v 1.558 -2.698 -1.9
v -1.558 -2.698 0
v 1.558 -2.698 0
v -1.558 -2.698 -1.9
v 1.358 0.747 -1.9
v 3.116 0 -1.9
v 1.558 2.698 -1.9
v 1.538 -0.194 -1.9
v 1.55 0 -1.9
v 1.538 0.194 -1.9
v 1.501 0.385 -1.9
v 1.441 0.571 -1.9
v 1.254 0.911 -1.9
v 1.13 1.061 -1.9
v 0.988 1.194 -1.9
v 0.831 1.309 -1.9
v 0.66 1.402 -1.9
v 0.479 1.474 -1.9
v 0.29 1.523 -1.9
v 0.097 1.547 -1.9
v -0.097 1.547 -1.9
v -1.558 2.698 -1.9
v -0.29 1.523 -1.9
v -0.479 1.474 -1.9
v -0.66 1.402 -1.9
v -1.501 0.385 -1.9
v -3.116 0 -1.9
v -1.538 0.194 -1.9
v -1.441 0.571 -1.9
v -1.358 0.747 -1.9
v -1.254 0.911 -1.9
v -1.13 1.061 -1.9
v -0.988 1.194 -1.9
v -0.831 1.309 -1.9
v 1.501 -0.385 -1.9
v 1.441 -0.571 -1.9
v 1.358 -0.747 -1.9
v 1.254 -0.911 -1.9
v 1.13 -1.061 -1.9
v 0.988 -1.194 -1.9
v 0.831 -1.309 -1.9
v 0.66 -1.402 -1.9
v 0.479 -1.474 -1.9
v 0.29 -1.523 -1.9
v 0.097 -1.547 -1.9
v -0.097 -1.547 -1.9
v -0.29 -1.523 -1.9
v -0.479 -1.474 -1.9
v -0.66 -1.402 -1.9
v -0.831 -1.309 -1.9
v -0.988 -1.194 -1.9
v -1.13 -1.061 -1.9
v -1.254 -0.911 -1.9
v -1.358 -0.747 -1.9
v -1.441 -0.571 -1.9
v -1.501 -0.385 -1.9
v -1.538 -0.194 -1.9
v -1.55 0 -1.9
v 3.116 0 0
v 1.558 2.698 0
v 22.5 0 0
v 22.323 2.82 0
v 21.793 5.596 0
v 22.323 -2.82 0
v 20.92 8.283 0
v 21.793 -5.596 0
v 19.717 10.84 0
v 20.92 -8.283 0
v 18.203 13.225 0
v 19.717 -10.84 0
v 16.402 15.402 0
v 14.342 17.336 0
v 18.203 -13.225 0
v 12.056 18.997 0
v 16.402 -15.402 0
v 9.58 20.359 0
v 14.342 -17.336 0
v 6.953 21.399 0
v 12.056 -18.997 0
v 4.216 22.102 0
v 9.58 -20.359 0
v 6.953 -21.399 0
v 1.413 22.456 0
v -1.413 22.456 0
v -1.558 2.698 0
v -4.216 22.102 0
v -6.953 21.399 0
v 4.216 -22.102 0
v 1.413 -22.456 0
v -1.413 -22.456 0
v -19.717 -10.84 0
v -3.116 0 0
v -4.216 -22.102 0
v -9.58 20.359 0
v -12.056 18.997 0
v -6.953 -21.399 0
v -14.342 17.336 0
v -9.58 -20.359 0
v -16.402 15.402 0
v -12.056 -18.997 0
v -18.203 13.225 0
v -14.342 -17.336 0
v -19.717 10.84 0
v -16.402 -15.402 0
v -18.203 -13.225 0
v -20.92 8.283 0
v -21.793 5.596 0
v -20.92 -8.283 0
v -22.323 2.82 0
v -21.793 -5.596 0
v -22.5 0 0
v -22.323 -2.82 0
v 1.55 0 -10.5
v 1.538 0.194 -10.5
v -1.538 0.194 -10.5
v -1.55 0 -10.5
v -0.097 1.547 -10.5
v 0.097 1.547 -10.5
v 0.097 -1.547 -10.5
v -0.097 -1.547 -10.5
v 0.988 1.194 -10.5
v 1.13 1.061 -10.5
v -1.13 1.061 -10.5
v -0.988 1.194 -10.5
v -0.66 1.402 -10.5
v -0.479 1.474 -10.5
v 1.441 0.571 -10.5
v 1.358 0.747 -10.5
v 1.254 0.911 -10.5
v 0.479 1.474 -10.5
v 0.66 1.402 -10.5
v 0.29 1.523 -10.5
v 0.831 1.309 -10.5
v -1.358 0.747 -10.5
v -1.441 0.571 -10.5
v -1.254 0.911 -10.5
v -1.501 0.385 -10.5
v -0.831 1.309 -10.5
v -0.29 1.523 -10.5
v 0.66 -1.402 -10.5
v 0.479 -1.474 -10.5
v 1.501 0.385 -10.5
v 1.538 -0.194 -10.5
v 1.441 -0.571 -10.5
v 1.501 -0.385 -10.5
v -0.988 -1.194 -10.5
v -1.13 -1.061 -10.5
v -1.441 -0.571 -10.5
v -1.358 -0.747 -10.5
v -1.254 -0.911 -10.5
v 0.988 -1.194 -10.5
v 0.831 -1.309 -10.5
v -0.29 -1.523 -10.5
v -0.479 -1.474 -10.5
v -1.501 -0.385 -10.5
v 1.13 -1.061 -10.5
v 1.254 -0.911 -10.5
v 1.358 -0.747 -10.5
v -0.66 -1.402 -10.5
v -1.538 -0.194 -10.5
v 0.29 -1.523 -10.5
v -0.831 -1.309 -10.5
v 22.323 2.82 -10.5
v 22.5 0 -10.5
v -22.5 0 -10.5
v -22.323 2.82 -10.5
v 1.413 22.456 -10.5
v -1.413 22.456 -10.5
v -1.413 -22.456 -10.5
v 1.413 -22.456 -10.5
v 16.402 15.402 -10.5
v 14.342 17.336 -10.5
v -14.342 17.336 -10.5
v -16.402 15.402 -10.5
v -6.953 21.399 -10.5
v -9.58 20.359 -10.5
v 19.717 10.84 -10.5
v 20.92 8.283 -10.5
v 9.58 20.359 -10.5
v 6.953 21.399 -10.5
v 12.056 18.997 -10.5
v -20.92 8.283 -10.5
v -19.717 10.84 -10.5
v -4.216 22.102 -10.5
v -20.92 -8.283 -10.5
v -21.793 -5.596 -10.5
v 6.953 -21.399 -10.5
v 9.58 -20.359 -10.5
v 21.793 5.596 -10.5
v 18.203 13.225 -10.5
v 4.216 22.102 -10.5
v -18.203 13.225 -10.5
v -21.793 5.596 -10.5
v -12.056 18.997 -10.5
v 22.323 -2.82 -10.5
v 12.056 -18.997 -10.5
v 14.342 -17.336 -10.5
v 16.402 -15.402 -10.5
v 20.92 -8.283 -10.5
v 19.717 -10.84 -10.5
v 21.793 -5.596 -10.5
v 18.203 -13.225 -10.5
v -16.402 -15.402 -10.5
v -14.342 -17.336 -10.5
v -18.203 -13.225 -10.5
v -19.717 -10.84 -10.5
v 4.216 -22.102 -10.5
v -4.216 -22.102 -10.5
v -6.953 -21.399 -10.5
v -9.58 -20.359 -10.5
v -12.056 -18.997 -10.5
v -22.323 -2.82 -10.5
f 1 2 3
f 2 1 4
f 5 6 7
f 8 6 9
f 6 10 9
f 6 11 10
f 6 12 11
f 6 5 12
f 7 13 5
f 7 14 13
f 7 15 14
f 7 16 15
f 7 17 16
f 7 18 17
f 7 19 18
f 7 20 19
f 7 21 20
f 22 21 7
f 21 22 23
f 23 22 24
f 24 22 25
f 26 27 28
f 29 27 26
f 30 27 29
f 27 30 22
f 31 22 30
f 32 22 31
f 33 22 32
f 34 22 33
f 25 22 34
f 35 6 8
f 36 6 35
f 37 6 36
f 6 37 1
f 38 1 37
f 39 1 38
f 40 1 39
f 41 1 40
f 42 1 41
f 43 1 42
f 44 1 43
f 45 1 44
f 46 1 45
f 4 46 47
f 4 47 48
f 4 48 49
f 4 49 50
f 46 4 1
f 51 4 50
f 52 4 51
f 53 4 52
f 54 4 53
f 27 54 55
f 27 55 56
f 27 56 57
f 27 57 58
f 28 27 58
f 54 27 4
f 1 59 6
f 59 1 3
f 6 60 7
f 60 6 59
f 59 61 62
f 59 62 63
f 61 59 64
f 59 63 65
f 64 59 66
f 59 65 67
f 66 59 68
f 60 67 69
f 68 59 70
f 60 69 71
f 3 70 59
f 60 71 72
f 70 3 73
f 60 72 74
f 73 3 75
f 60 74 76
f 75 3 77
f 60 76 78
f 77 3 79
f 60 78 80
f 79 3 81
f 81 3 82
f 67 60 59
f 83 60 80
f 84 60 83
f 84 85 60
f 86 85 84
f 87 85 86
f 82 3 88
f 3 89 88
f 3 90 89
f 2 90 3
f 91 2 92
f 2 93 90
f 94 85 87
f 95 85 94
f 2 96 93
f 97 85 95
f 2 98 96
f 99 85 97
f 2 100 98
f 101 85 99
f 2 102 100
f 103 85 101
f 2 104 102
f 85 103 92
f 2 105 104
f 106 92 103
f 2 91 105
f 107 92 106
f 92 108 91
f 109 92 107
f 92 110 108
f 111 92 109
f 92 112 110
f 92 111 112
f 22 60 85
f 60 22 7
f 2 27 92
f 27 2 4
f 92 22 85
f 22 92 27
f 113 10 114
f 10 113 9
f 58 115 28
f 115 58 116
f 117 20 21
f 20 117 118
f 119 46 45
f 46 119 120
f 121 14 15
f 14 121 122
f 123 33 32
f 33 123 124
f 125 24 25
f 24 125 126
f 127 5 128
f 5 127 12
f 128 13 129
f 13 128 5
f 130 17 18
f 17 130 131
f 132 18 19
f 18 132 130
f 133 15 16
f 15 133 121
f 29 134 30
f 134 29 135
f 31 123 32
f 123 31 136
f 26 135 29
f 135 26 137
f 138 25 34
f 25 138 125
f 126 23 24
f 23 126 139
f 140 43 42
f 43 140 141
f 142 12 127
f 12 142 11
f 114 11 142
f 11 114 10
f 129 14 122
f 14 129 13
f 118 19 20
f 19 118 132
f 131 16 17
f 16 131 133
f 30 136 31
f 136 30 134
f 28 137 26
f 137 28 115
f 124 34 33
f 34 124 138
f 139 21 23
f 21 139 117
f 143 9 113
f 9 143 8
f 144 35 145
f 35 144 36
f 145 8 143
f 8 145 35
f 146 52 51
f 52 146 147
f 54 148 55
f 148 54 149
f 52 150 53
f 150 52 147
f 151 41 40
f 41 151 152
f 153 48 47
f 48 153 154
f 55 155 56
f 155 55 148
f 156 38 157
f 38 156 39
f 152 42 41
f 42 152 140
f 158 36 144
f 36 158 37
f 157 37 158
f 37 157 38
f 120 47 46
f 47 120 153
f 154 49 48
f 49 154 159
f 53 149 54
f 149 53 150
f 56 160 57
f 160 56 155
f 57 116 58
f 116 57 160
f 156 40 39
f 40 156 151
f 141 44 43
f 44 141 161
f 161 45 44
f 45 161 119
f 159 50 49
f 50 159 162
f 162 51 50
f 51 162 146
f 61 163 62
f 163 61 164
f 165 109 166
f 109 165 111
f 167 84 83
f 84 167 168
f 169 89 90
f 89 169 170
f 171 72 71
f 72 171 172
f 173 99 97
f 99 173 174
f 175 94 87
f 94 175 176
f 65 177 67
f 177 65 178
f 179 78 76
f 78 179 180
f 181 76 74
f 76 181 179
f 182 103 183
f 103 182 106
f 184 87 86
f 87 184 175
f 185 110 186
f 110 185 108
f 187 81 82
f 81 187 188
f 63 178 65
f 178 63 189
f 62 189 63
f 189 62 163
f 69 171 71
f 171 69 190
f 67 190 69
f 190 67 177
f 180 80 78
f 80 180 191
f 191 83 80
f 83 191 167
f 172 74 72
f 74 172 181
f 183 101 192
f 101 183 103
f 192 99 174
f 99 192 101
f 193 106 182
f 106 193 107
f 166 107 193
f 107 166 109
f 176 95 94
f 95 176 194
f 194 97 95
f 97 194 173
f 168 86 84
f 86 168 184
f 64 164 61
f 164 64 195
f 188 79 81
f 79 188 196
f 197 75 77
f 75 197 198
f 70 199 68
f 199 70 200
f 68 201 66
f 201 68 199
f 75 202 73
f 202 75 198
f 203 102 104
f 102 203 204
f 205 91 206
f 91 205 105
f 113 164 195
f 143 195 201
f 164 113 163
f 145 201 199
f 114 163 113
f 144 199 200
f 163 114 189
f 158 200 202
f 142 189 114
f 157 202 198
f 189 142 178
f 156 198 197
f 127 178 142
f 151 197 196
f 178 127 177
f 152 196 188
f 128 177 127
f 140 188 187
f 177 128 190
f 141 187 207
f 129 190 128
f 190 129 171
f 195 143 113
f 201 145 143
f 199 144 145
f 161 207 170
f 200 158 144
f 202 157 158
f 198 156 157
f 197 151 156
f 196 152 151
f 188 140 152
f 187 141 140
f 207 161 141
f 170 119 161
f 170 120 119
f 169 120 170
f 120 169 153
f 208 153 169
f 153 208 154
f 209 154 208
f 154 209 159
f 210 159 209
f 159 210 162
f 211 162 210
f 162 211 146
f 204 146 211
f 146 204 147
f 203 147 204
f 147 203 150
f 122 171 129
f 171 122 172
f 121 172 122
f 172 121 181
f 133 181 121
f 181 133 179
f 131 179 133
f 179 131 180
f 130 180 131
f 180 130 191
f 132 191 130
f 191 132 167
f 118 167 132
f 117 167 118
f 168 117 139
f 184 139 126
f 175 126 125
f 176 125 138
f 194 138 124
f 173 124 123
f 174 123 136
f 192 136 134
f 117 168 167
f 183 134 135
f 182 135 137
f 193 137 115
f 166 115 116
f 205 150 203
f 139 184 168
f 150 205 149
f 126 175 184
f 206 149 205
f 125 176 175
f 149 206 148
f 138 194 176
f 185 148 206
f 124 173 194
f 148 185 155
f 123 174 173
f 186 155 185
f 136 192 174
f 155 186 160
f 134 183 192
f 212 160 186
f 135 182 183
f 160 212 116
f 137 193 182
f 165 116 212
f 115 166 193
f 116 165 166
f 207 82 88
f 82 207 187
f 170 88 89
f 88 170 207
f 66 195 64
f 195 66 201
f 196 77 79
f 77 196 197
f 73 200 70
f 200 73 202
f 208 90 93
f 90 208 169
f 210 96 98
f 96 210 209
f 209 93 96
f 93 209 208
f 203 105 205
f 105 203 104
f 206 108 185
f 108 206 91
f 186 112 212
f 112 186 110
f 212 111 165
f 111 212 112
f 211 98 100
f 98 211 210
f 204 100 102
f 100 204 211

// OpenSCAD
$fn = 50;


difference() {
	union() {
		translate(v = [0, 0, -10.5000000000]) {
			cylinder(h = 10.5000000000, r = 22.5000000000);
		}
	}
	union() {
		translate(v = [0, 0, 0]) {
			rotate(a = [0, 0, 0]) {
				difference() {
					union() {
						translate(v = [0, 0, -1.9000000000]) {
							linear_extrude(height = 1.9000000000) {
								polygon(points = [[3.1158000000, 0.0000000000], [1.5579000000, 2.6983619531], [-1.5579000000, 2.6983619531], [-3.1158000000, 0.0000000000], [-1.5579000000, -2.6983619531], [1.5579000000, -2.6983619531]]);
							}
						}
					}
					union();
				}
			}
		}
		#translate(v = [0, 0, -100.0000000000]) {
			cylinder(h = 200, r = 1.5500000000);
		}
	}
}
